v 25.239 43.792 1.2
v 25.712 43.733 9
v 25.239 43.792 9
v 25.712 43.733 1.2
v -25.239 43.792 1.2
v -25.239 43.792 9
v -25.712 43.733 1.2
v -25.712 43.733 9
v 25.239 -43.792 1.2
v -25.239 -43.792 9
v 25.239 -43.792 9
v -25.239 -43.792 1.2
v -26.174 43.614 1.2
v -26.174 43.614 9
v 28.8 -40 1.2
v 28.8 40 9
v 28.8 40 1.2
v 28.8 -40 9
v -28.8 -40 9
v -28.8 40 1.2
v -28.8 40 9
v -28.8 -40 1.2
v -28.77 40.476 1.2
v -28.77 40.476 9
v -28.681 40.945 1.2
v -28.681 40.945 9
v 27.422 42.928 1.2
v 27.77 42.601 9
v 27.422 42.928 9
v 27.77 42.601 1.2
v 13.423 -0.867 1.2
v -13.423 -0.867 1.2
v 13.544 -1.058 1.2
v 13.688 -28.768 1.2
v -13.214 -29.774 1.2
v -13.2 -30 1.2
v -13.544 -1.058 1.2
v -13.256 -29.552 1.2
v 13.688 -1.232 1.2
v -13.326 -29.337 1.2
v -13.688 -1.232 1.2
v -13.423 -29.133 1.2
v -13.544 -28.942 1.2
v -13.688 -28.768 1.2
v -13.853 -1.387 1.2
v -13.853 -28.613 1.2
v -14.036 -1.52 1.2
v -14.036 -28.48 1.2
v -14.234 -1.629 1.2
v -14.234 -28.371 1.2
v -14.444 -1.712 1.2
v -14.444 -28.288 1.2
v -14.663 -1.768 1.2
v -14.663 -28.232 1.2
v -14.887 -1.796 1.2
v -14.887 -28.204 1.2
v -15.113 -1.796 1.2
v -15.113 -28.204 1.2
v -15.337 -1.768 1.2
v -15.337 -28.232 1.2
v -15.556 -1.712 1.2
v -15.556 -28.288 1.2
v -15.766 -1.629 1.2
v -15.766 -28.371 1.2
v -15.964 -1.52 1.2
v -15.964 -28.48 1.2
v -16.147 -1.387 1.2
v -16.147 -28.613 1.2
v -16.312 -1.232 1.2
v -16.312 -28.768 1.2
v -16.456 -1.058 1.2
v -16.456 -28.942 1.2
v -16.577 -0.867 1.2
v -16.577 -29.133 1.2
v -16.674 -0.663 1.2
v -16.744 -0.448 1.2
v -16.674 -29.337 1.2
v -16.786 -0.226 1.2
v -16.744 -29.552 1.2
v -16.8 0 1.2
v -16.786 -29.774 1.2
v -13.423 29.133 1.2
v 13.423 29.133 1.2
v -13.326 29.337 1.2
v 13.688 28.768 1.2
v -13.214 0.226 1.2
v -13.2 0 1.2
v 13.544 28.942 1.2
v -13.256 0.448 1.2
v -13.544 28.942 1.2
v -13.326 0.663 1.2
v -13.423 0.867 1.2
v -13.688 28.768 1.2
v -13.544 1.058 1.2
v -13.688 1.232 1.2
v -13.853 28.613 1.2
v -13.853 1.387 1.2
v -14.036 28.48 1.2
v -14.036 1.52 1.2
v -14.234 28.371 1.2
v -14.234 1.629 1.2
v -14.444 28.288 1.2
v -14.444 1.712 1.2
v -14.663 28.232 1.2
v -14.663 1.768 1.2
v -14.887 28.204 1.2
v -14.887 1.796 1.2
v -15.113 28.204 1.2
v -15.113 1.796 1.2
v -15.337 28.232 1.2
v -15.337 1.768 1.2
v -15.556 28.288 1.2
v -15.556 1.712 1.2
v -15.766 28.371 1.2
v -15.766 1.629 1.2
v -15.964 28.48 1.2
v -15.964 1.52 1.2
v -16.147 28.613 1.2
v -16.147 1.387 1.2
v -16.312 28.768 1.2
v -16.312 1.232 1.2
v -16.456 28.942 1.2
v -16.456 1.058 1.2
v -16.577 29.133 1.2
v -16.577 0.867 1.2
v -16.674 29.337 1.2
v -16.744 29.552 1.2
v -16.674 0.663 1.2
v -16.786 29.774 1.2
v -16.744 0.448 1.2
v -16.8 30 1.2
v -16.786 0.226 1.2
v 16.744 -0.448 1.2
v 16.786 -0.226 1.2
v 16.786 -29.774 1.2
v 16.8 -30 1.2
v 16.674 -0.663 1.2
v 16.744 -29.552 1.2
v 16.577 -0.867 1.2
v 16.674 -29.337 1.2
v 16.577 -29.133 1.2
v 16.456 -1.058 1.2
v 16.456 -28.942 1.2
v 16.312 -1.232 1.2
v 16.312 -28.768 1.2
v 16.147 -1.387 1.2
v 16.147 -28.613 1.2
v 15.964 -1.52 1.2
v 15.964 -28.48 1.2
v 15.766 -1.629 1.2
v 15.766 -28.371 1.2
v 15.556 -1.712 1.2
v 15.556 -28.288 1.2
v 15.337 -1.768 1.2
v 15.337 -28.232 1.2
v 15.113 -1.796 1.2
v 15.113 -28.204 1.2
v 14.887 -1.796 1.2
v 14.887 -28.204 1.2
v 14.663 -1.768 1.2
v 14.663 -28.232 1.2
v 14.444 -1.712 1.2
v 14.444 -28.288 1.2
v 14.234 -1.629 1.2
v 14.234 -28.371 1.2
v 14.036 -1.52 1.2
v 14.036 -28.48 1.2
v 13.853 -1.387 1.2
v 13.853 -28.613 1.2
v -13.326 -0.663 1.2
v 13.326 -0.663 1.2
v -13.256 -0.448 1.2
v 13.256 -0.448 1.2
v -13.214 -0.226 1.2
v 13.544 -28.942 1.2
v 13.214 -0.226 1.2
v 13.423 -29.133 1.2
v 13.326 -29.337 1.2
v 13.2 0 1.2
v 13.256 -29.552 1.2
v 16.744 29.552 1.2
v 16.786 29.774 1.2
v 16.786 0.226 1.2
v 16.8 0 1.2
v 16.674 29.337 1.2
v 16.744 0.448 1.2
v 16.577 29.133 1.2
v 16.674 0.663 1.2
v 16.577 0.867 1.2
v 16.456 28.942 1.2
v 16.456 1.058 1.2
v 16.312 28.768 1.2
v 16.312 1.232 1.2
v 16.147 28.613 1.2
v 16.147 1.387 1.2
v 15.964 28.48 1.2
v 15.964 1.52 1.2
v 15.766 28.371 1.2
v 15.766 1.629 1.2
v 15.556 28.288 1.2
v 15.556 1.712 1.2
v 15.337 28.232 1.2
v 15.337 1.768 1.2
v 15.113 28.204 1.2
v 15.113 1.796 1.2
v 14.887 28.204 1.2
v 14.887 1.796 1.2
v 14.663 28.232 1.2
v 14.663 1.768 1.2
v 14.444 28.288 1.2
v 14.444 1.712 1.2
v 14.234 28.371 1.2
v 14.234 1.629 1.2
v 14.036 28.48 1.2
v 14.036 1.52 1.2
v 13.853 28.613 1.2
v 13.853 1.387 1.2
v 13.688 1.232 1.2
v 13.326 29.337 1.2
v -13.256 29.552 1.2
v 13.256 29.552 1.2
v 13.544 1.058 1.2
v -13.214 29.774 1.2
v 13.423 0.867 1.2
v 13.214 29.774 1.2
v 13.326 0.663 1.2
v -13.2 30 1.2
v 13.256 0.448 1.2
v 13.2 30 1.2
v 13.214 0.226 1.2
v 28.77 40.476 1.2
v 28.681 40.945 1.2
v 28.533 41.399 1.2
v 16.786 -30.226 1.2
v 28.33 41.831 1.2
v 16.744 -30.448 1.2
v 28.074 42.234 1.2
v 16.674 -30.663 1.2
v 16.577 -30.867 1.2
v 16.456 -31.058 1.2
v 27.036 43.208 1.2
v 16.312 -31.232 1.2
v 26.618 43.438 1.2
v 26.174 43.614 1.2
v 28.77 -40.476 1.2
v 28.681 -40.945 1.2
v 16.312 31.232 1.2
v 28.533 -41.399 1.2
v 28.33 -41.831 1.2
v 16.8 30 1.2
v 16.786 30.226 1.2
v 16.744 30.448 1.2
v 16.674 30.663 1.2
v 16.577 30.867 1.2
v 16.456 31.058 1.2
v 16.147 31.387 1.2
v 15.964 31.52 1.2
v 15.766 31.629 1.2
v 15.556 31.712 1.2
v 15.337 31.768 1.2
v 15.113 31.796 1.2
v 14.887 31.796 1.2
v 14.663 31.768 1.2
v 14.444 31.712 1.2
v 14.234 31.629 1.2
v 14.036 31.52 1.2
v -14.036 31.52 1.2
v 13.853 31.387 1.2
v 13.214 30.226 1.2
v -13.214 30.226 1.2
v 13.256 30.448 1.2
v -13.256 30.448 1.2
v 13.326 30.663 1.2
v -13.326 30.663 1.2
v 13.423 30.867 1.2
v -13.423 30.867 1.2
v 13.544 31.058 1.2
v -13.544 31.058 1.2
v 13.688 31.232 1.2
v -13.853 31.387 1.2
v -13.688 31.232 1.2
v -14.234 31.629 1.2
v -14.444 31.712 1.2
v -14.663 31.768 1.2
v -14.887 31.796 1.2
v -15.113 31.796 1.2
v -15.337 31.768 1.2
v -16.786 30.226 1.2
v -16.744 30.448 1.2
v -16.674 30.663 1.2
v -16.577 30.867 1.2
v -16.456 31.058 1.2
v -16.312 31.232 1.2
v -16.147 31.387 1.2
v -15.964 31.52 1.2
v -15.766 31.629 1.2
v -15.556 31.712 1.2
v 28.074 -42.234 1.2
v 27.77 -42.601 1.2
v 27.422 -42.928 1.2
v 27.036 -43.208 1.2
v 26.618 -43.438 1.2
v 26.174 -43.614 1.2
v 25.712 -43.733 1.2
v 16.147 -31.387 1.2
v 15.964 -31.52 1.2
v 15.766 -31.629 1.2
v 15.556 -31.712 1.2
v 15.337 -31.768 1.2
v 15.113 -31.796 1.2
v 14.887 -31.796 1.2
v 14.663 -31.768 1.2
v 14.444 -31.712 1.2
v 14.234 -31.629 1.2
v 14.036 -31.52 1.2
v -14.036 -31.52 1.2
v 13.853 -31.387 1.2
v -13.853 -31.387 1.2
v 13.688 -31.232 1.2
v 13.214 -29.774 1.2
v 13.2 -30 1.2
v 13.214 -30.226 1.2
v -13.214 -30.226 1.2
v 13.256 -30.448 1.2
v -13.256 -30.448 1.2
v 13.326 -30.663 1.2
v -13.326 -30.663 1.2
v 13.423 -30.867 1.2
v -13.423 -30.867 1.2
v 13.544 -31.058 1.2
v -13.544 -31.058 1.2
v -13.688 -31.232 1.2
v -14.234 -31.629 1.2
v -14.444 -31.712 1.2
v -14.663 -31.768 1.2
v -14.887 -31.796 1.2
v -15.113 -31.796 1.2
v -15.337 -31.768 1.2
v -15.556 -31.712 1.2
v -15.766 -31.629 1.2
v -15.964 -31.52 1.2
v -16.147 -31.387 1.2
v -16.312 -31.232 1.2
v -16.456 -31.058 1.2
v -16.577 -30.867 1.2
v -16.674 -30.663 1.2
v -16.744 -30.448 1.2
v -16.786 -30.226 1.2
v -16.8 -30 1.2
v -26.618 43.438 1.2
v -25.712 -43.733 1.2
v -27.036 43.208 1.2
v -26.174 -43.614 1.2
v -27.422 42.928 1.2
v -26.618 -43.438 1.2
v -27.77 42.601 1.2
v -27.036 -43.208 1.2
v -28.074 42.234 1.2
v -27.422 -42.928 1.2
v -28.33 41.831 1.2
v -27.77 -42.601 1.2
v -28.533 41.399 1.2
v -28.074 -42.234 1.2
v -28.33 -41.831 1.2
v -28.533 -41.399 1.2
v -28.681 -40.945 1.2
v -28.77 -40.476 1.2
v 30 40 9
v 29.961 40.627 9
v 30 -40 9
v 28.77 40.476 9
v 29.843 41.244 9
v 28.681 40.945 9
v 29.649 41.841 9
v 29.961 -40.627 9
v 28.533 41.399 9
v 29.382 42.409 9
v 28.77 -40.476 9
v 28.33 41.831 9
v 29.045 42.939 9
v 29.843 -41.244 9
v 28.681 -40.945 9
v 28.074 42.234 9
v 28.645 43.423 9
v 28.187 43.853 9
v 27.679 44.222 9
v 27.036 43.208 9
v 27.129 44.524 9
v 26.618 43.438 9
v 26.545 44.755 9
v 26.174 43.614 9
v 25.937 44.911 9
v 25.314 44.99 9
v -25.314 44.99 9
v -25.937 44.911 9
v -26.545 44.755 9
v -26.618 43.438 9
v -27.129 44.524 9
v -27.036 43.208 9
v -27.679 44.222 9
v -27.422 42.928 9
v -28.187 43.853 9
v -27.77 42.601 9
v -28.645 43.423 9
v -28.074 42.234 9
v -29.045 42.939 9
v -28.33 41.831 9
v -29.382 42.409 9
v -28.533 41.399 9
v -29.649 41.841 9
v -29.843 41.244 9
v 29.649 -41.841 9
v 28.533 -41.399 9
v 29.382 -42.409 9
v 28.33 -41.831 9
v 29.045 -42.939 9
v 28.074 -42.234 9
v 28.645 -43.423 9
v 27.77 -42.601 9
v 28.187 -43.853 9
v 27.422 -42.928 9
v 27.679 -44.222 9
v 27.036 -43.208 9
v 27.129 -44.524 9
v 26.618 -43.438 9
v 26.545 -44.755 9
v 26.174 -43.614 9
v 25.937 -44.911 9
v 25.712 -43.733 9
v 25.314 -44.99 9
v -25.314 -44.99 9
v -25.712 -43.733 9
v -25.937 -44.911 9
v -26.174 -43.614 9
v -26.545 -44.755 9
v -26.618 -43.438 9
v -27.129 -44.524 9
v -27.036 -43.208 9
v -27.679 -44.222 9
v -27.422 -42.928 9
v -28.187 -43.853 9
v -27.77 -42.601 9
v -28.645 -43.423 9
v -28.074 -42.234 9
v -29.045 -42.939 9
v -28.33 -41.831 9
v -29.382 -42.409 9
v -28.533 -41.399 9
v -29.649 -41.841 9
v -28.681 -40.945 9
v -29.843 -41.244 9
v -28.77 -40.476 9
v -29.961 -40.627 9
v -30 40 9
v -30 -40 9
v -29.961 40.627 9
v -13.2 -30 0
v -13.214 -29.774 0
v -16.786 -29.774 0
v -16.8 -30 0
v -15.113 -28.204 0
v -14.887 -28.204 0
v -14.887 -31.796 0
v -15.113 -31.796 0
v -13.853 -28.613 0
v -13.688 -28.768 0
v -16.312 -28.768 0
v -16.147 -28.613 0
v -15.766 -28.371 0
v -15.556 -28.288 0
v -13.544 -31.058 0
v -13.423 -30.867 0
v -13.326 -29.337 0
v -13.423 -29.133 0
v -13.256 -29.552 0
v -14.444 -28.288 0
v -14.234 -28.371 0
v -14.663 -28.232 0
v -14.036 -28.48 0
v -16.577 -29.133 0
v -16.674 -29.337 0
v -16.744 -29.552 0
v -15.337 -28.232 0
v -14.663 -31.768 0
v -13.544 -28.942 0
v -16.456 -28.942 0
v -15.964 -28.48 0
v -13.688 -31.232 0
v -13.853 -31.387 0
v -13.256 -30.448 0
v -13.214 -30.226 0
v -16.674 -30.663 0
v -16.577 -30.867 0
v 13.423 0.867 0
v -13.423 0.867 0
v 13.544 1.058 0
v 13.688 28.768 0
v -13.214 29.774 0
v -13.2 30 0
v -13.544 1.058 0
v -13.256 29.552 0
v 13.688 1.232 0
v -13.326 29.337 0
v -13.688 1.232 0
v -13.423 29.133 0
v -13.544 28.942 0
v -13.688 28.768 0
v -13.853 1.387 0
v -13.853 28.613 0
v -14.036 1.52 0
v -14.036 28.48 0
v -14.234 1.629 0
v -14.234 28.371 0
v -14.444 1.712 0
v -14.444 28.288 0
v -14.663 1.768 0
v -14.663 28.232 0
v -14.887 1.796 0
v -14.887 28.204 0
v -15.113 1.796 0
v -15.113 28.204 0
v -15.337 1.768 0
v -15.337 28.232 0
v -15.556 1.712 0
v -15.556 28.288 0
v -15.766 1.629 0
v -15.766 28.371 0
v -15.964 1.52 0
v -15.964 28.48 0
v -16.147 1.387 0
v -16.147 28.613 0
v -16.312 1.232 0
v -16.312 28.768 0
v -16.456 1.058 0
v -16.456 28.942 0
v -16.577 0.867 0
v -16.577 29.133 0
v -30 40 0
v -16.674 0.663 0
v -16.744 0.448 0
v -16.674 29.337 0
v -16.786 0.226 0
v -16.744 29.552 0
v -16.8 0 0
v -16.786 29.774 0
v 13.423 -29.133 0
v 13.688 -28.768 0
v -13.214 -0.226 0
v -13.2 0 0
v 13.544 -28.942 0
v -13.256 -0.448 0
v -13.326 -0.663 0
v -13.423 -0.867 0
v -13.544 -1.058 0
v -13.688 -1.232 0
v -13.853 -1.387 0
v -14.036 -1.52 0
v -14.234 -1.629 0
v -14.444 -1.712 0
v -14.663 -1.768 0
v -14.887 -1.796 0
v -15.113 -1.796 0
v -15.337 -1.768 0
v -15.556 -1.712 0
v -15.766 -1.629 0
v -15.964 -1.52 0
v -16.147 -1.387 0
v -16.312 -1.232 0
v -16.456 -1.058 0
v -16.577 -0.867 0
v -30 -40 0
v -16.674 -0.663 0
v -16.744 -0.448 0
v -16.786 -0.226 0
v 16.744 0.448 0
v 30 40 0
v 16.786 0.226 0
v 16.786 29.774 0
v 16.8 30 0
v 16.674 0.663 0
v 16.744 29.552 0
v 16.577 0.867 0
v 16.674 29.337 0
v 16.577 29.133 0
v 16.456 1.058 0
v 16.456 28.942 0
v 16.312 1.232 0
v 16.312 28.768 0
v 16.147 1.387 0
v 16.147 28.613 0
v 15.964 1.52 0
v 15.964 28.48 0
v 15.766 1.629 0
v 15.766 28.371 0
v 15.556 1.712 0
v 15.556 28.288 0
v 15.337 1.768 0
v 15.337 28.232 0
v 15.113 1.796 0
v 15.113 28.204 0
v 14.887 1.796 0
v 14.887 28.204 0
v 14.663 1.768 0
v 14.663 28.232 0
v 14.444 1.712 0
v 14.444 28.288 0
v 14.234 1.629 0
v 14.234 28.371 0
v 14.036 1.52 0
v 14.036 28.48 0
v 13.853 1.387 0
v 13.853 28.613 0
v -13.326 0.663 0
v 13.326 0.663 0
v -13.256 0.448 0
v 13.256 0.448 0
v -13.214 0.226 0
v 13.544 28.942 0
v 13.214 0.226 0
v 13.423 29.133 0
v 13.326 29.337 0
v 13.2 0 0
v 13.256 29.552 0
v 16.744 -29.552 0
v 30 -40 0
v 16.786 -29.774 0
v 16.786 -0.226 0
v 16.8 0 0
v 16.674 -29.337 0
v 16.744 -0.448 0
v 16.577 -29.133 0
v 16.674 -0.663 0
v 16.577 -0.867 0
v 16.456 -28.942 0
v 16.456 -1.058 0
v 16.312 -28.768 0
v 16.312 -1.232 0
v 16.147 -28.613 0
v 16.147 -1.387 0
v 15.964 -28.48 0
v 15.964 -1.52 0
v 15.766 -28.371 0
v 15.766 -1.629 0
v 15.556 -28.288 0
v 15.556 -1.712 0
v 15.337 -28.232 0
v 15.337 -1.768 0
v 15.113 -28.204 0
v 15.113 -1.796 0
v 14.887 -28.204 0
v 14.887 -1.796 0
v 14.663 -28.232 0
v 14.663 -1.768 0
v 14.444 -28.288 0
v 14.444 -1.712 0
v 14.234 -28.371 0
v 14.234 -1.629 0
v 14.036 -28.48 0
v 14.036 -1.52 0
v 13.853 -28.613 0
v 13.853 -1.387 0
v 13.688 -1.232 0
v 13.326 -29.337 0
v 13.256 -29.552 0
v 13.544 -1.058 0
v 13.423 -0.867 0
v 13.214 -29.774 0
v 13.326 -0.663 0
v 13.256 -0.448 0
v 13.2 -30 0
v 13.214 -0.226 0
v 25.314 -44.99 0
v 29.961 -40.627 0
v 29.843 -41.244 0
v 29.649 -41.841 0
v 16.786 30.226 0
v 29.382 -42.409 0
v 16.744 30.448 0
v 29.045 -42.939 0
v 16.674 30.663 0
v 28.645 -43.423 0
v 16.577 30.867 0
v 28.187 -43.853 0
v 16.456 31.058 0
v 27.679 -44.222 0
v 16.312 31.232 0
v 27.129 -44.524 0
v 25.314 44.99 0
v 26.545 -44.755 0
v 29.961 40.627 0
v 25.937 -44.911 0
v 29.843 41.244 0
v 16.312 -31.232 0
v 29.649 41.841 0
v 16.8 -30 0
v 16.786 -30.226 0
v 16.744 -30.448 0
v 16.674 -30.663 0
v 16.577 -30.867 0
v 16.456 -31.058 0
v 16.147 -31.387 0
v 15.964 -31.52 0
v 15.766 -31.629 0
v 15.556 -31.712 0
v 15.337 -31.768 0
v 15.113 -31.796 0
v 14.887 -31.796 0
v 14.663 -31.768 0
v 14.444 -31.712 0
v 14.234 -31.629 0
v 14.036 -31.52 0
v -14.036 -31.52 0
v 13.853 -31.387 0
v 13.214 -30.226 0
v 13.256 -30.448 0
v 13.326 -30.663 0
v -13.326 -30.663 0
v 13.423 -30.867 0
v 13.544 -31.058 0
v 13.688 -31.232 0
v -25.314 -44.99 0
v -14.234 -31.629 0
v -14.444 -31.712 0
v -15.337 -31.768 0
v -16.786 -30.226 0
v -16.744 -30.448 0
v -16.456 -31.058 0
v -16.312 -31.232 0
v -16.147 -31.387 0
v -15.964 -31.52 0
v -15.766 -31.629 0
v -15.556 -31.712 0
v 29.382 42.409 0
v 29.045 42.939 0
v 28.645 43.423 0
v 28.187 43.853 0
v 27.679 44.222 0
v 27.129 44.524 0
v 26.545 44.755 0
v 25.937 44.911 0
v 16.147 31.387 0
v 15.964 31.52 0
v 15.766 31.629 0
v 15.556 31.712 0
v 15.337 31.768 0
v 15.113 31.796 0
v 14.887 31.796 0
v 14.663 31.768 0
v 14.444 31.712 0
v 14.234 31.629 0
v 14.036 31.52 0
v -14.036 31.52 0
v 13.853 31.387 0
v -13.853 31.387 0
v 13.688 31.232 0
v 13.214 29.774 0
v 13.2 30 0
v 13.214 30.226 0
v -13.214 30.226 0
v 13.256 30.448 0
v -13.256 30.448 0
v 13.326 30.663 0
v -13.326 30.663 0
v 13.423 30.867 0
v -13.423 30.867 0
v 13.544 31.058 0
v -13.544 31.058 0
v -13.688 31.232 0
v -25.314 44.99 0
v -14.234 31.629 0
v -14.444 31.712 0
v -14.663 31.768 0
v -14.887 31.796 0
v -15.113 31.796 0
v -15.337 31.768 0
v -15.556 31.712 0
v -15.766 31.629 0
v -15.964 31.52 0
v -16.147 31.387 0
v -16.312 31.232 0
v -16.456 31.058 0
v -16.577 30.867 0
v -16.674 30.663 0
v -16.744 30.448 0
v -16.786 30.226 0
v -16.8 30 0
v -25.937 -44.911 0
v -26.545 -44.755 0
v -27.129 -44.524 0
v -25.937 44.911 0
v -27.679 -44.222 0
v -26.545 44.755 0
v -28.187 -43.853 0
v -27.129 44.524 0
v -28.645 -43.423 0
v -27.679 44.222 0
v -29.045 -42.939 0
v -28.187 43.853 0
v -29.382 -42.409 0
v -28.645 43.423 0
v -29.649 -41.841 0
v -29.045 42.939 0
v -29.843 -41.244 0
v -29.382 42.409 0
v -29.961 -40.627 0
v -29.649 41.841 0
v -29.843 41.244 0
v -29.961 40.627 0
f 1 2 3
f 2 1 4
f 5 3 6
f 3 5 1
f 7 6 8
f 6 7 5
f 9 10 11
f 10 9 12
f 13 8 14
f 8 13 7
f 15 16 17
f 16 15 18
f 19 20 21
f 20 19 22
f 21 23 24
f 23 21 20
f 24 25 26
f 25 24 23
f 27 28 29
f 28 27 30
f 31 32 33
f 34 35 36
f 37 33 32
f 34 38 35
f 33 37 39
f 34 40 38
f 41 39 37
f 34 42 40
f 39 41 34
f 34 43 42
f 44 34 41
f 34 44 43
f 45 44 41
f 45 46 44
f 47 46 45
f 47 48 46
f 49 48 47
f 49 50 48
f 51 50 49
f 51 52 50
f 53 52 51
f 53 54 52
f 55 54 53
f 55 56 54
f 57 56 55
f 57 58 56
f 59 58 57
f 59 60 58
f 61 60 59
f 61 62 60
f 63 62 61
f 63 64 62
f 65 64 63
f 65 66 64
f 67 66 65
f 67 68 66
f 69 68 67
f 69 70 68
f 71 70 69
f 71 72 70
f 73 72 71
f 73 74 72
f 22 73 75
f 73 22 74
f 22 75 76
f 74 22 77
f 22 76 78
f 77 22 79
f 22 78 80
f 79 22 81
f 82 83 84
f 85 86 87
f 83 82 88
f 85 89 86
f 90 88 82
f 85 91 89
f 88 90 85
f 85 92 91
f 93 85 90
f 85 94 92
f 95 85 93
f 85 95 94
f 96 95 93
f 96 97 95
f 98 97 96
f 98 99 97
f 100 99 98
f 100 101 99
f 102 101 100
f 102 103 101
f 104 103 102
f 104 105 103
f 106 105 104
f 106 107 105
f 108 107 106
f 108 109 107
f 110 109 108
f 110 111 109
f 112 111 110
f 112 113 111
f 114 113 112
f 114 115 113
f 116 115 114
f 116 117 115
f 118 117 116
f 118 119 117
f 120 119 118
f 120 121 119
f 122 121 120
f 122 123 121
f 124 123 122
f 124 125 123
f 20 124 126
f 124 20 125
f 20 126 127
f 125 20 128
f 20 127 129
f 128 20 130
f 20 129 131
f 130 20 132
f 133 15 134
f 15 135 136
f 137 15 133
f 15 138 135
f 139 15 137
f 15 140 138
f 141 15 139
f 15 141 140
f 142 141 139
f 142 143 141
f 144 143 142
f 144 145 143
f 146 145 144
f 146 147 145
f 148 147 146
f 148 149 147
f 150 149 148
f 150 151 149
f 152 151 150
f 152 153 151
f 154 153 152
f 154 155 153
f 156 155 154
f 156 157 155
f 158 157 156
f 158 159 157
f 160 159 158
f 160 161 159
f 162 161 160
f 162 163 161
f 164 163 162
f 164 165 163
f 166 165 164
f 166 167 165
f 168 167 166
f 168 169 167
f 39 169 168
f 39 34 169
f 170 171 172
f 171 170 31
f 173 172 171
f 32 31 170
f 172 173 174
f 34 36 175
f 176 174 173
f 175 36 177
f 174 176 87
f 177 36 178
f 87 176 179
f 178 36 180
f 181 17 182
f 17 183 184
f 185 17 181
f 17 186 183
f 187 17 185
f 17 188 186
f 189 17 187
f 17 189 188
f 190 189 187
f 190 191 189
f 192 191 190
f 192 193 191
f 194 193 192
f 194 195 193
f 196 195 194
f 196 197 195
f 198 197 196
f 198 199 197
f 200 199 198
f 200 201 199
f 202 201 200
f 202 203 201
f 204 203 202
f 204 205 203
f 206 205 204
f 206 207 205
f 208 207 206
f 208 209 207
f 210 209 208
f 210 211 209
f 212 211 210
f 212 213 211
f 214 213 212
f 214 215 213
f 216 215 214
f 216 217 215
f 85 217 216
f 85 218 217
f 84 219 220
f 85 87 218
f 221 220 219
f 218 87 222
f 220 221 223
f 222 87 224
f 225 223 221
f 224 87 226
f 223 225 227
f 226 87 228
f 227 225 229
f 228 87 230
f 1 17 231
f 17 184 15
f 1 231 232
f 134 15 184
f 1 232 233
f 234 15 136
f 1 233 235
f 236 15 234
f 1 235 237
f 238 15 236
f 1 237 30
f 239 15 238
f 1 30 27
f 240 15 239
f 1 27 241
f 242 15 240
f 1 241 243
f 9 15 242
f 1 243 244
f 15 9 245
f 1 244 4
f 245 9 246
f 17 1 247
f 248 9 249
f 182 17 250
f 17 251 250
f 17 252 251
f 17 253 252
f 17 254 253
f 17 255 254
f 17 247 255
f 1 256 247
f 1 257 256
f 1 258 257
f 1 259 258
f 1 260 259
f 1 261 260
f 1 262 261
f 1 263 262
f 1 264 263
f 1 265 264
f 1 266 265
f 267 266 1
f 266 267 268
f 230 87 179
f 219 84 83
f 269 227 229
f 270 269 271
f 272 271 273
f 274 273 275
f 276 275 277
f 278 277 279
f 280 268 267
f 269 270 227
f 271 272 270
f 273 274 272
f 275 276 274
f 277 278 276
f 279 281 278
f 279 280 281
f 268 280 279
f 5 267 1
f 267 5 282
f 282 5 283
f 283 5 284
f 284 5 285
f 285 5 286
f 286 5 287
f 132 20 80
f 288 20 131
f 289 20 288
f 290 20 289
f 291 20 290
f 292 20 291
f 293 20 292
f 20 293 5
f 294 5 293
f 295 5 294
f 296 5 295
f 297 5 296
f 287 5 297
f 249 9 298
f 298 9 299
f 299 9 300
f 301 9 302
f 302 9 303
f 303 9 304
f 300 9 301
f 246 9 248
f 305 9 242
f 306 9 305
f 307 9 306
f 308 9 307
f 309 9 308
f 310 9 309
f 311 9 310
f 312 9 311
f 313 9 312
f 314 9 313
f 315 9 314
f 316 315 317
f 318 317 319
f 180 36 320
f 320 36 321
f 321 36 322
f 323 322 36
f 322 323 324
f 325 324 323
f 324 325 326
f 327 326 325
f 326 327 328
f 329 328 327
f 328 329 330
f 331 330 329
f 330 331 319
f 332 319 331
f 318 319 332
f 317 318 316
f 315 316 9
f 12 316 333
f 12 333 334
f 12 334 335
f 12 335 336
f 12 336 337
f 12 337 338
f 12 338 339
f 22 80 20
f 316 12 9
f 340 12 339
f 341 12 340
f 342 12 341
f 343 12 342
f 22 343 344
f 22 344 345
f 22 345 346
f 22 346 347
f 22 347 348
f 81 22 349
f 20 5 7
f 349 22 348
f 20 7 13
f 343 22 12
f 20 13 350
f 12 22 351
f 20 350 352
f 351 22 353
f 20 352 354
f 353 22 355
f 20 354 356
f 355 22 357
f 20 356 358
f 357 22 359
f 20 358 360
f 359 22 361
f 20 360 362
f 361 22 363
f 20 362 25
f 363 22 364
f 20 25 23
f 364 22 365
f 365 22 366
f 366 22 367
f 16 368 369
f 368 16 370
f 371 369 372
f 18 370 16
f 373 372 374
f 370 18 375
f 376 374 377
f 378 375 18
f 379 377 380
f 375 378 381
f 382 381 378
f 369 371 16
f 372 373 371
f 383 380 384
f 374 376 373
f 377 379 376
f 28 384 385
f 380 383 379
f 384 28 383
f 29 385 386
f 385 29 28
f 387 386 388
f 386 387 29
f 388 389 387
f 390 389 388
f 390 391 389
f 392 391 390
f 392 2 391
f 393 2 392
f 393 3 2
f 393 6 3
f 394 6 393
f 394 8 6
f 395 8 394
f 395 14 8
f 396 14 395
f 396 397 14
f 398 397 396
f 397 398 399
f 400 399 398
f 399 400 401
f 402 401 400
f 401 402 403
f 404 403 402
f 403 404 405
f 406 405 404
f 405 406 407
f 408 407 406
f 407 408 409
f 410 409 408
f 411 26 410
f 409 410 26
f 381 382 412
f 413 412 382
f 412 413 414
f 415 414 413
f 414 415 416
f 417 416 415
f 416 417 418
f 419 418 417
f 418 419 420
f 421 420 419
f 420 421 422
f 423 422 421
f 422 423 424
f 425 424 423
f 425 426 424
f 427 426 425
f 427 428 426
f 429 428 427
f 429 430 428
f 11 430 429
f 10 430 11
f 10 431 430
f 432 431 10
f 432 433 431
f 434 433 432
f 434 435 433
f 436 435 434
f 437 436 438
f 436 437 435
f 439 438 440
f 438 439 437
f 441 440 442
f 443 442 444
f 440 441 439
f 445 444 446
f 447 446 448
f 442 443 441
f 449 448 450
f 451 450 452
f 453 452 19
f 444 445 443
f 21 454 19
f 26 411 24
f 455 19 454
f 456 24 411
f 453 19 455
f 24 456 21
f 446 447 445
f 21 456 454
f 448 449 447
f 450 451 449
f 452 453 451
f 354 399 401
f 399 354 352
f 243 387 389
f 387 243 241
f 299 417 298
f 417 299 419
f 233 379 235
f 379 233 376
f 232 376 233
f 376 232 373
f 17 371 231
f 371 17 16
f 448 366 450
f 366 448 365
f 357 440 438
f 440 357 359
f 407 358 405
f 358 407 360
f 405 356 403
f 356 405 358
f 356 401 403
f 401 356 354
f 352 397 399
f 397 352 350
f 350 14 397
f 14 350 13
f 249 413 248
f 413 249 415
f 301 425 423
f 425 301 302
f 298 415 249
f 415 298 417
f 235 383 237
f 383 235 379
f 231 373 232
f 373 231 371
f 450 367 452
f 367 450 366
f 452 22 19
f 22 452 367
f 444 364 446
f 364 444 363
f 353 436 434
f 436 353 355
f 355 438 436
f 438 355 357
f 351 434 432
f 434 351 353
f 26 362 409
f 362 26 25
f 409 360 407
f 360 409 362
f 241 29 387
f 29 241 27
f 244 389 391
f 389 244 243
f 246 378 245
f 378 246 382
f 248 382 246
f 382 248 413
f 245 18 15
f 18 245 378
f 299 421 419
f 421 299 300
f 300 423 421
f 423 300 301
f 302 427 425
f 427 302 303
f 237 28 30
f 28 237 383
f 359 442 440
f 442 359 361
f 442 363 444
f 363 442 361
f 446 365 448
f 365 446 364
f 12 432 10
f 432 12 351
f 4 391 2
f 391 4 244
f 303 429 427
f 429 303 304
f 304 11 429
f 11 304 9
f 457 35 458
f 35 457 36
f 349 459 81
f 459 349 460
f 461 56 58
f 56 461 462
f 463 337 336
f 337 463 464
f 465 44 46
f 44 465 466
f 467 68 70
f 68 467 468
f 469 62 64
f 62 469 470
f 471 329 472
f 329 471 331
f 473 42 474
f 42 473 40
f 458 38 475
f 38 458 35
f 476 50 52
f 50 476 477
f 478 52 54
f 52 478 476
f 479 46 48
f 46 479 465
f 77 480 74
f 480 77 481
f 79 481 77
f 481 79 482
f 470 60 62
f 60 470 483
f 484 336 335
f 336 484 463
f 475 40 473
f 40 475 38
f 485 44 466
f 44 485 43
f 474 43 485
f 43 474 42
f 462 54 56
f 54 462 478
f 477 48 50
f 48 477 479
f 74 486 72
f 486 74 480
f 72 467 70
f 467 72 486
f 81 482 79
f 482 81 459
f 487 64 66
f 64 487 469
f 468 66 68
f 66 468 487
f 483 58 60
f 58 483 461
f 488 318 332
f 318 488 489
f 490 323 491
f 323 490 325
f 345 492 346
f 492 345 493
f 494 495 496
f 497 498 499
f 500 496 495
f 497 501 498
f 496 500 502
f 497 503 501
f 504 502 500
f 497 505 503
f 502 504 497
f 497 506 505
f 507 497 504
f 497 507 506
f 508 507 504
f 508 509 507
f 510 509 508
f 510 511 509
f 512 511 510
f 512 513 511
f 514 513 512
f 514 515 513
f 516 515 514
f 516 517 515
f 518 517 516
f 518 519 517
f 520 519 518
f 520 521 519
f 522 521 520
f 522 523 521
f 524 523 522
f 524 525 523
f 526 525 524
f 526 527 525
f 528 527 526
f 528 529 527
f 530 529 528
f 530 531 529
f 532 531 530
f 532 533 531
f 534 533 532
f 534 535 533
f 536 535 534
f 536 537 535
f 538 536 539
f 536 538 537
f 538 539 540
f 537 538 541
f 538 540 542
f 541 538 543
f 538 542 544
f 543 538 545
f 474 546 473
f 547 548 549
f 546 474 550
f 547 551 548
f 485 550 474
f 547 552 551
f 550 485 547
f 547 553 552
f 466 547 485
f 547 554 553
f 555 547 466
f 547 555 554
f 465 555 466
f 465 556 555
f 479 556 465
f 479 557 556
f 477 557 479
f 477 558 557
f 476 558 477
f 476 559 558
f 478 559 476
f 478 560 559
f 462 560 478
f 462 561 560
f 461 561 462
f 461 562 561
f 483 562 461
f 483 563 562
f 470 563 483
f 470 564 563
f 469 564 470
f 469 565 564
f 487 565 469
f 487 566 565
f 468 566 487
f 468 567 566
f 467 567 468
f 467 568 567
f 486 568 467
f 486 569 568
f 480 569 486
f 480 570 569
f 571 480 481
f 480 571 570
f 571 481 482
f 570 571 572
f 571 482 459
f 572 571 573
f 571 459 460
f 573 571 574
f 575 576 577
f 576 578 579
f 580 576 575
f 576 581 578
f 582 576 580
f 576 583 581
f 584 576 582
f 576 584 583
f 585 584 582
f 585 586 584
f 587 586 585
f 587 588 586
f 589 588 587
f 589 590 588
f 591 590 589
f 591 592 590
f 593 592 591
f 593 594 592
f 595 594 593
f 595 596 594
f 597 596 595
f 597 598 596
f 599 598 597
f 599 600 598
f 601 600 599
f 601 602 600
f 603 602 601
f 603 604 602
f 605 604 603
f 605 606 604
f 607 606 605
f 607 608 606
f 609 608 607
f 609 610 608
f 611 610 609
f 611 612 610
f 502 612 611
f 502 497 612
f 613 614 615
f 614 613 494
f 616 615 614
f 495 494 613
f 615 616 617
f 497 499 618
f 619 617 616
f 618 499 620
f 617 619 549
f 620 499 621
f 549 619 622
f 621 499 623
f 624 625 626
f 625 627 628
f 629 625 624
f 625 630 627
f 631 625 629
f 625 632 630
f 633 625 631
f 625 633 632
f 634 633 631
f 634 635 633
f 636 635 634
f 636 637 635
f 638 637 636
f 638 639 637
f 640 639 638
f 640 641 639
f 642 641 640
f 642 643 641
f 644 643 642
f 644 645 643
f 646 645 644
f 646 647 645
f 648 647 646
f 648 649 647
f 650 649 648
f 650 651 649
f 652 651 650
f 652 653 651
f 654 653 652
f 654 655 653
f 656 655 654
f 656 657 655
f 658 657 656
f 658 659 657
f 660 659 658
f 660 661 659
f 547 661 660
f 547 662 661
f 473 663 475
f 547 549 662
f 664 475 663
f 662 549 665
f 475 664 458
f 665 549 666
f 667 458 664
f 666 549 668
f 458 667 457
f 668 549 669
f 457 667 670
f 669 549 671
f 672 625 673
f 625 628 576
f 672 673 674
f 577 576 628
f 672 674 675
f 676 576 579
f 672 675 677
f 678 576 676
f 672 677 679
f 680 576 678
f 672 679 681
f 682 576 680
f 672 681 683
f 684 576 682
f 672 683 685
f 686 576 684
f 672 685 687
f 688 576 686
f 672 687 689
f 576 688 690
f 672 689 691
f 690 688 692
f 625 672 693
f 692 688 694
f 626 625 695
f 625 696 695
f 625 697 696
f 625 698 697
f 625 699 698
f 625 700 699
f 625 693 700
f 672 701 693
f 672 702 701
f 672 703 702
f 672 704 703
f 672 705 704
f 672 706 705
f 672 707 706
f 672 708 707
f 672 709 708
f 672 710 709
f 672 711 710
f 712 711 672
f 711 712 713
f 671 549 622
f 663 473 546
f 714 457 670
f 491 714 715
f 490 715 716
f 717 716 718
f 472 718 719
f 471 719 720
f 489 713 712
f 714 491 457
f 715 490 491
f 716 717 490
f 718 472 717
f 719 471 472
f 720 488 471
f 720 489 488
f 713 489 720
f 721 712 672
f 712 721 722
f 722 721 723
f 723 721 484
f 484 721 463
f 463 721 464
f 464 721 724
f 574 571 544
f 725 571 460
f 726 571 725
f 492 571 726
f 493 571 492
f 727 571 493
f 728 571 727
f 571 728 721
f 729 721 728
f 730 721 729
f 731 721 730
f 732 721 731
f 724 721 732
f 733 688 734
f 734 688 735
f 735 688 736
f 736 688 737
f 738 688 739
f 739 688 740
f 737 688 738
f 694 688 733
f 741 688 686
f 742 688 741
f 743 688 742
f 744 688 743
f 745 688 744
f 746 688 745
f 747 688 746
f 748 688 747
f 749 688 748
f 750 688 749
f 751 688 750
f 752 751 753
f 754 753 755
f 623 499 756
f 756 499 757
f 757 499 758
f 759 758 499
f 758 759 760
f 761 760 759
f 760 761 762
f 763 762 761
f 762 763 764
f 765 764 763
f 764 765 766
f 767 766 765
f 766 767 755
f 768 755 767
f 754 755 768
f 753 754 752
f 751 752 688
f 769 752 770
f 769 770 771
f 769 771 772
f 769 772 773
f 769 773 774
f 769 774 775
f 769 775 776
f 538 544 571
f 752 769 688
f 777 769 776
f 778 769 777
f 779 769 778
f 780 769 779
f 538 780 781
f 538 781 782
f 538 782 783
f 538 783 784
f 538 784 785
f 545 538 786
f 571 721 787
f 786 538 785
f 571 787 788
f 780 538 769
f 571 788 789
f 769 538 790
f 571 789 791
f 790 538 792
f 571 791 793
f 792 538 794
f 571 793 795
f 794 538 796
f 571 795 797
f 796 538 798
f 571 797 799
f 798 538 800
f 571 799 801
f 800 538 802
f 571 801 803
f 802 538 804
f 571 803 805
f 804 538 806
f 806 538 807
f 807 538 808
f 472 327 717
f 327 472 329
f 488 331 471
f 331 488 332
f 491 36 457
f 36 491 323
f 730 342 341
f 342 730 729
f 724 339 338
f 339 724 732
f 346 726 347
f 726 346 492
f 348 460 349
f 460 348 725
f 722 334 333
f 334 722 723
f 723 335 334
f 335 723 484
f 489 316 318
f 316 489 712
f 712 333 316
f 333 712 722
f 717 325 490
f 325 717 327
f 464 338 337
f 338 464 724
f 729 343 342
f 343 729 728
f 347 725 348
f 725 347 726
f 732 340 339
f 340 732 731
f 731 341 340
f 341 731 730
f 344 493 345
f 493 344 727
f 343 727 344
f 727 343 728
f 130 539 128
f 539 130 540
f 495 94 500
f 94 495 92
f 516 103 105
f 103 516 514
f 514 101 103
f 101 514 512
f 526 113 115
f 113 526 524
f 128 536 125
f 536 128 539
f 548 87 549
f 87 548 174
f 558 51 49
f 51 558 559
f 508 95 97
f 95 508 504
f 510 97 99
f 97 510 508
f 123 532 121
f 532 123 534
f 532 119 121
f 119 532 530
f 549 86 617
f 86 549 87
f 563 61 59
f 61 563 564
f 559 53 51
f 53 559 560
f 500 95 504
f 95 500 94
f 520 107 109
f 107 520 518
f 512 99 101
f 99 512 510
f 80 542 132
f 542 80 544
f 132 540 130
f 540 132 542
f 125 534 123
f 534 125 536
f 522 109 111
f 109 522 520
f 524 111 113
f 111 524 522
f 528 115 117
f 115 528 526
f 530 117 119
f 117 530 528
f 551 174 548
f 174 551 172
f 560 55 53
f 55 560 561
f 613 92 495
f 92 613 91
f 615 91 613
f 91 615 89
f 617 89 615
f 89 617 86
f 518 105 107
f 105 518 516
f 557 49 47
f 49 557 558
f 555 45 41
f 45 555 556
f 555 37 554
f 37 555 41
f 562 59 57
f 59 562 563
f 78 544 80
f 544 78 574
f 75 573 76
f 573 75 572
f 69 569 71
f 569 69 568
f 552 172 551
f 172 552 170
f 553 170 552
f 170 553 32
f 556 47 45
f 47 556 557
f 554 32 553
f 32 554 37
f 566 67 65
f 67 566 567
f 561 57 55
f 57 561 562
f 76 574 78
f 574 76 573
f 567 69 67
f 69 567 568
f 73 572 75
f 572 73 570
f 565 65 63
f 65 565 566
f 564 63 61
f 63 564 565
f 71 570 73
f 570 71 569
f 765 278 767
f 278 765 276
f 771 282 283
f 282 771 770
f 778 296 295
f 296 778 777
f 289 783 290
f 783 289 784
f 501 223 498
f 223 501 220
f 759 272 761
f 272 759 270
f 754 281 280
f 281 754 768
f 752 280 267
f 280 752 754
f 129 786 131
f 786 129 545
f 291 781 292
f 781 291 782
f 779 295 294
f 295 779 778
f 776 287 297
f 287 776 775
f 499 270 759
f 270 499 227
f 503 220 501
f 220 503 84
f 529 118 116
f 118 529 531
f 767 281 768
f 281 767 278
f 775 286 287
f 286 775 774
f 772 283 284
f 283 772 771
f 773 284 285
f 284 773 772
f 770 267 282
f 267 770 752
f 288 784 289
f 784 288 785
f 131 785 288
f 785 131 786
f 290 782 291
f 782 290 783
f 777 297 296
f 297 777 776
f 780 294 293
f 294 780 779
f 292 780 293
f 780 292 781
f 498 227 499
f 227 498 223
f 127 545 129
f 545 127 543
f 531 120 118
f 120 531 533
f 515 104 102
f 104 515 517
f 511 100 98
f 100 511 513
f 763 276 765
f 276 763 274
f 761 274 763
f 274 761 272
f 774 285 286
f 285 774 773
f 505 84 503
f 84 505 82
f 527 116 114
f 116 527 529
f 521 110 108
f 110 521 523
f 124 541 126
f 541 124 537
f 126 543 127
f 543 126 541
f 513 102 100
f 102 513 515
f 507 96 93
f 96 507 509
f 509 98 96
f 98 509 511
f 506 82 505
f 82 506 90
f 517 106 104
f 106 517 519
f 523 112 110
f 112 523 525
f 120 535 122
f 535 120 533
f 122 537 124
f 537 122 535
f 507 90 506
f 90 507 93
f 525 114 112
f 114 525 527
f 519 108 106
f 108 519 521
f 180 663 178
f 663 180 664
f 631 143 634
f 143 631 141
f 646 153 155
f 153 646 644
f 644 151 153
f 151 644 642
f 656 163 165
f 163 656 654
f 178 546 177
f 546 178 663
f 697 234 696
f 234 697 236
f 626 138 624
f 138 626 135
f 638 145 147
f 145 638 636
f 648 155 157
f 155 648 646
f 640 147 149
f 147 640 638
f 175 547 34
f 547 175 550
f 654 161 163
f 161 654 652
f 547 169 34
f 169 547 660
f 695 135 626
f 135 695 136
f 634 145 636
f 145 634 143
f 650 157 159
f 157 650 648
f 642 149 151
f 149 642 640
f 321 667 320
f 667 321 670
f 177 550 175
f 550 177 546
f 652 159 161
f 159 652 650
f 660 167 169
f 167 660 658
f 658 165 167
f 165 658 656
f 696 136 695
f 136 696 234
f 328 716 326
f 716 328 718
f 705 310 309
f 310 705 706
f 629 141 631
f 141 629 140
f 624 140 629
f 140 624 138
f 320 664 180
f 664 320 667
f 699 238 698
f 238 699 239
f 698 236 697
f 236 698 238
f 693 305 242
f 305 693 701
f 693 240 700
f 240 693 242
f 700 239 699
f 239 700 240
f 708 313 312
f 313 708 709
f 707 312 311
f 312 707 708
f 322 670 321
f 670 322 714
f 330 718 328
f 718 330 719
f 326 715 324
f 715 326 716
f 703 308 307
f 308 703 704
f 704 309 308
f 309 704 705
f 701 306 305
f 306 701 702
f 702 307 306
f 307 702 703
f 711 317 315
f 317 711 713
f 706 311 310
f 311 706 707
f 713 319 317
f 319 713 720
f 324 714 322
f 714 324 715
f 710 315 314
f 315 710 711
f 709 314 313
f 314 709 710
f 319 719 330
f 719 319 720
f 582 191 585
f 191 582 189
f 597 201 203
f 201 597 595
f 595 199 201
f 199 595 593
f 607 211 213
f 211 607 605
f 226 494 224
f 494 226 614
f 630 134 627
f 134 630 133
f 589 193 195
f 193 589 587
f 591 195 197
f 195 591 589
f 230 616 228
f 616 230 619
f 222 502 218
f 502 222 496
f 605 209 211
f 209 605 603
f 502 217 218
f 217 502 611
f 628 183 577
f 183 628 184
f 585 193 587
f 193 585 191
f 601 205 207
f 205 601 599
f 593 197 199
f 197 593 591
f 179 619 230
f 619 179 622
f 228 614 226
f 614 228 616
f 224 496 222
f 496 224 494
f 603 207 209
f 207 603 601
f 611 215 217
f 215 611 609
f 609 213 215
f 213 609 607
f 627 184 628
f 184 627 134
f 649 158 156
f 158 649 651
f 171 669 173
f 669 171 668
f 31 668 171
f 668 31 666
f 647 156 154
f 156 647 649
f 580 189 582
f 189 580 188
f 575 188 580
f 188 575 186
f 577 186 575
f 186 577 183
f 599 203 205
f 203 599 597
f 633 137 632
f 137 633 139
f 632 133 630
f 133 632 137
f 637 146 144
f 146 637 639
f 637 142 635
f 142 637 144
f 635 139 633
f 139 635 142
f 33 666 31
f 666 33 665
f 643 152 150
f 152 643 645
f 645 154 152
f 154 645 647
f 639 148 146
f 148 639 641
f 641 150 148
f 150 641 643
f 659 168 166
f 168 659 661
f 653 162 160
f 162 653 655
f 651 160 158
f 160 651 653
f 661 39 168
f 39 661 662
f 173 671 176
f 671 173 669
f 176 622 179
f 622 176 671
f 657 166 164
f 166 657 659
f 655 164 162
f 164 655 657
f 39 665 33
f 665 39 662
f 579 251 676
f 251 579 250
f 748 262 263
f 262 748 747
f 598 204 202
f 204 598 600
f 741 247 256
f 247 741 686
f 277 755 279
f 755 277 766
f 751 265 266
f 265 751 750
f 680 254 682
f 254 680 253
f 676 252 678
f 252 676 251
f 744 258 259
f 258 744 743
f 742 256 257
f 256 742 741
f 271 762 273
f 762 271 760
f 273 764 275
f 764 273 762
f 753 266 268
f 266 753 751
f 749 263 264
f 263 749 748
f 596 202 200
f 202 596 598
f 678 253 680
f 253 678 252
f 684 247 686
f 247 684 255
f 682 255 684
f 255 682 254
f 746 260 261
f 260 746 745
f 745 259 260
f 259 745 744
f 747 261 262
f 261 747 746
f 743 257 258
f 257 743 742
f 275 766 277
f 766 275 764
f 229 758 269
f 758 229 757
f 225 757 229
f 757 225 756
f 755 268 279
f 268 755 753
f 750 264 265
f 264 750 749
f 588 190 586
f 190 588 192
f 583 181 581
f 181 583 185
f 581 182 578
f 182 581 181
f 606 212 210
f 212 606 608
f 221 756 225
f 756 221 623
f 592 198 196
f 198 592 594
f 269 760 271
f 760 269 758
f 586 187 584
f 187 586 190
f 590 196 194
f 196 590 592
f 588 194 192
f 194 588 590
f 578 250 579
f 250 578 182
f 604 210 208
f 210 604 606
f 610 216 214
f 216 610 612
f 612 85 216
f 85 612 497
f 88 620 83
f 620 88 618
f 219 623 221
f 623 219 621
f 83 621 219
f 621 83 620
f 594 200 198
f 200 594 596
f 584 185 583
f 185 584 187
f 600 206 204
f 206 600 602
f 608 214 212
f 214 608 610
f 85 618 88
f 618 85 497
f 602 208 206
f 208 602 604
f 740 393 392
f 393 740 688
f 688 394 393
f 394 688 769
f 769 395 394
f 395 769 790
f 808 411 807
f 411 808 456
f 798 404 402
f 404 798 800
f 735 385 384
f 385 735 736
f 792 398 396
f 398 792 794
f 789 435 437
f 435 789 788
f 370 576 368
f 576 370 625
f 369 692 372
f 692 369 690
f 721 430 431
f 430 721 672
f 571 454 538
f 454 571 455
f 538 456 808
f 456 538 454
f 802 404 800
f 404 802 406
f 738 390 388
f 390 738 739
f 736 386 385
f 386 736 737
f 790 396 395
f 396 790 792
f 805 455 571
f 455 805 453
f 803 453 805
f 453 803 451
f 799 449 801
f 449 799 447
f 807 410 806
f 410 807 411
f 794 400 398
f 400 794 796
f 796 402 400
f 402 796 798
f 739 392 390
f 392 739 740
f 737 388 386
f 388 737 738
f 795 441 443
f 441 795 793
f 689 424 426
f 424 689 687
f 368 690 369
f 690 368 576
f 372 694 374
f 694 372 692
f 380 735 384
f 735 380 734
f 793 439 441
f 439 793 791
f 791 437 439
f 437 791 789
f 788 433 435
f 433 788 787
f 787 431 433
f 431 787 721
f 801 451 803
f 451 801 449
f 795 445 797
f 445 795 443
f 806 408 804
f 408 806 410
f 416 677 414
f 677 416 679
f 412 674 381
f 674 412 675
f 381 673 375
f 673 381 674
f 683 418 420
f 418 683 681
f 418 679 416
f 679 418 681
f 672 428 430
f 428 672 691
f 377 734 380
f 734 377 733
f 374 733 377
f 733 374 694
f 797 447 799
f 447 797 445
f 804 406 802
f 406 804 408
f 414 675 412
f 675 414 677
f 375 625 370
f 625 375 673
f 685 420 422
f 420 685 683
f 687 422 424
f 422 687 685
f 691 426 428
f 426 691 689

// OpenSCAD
$fn = 50;


difference() {
	union() {
		hull() {
			translate(v = [-25.0000000000, 40.0000000000, 0]) {
				cylinder(h = 9, r = 5);
			}
			translate(v = [25.0000000000, 40.0000000000, 0]) {
				cylinder(h = 9, r = 5);
			}
			translate(v = [-25.0000000000, -40.0000000000, 0]) {
				cylinder(h = 9, r = 5);
			}
			translate(v = [25.0000000000, -40.0000000000, 0]) {
				cylinder(h = 9, r = 5);
			}
		}
	}
	union() {
		translate(v = [0, 0, 1.2000000000]) {
			hull() {
				translate(v = [-25.0000000000, 40.0000000000, 0]) {
					cylinder(h = 7.8000000000, r = 3.8000000000);
				}
				translate(v = [25.0000000000, 40.0000000000, 0]) {
					cylinder(h = 7.8000000000, r = 3.8000000000);
				}
				translate(v = [-25.0000000000, -40.0000000000, 0]) {
					cylinder(h = 7.8000000000, r = 3.8000000000);
				}
				translate(v = [25.0000000000, -40.0000000000, 0]) {
					cylinder(h = 7.8000000000, r = 3.8000000000);
				}
			}
		}
		#translate(v = [-15.0000000000, -30.0000000000, 0]) {
			cylinder(h = 1.2000000000, r = 1.8000000000);
		}
		#translate(v = [-15.0000000000, 0.0000000000, 0]) {
			cylinder(h = 1.2000000000, r = 1.8000000000);
		}
		#translate(v = [-15.0000000000, 30.0000000000, 0]) {
			cylinder(h = 1.2000000000, r = 1.8000000000);
		}
		#translate(v = [15.0000000000, -30.0000000000, 0]) {
			cylinder(h = 1.2000000000, r = 1.8000000000);
		}
		#translate(v = [15.0000000000, 0.0000000000, 0]) {
			cylinder(h = 1.2000000000, r = 1.8000000000);
		}
		#translate(v = [15.0000000000, 30.0000000000, 0]) {
			cylinder(h = 1.2000000000, r = 1.8000000000);
		}
	}
}
